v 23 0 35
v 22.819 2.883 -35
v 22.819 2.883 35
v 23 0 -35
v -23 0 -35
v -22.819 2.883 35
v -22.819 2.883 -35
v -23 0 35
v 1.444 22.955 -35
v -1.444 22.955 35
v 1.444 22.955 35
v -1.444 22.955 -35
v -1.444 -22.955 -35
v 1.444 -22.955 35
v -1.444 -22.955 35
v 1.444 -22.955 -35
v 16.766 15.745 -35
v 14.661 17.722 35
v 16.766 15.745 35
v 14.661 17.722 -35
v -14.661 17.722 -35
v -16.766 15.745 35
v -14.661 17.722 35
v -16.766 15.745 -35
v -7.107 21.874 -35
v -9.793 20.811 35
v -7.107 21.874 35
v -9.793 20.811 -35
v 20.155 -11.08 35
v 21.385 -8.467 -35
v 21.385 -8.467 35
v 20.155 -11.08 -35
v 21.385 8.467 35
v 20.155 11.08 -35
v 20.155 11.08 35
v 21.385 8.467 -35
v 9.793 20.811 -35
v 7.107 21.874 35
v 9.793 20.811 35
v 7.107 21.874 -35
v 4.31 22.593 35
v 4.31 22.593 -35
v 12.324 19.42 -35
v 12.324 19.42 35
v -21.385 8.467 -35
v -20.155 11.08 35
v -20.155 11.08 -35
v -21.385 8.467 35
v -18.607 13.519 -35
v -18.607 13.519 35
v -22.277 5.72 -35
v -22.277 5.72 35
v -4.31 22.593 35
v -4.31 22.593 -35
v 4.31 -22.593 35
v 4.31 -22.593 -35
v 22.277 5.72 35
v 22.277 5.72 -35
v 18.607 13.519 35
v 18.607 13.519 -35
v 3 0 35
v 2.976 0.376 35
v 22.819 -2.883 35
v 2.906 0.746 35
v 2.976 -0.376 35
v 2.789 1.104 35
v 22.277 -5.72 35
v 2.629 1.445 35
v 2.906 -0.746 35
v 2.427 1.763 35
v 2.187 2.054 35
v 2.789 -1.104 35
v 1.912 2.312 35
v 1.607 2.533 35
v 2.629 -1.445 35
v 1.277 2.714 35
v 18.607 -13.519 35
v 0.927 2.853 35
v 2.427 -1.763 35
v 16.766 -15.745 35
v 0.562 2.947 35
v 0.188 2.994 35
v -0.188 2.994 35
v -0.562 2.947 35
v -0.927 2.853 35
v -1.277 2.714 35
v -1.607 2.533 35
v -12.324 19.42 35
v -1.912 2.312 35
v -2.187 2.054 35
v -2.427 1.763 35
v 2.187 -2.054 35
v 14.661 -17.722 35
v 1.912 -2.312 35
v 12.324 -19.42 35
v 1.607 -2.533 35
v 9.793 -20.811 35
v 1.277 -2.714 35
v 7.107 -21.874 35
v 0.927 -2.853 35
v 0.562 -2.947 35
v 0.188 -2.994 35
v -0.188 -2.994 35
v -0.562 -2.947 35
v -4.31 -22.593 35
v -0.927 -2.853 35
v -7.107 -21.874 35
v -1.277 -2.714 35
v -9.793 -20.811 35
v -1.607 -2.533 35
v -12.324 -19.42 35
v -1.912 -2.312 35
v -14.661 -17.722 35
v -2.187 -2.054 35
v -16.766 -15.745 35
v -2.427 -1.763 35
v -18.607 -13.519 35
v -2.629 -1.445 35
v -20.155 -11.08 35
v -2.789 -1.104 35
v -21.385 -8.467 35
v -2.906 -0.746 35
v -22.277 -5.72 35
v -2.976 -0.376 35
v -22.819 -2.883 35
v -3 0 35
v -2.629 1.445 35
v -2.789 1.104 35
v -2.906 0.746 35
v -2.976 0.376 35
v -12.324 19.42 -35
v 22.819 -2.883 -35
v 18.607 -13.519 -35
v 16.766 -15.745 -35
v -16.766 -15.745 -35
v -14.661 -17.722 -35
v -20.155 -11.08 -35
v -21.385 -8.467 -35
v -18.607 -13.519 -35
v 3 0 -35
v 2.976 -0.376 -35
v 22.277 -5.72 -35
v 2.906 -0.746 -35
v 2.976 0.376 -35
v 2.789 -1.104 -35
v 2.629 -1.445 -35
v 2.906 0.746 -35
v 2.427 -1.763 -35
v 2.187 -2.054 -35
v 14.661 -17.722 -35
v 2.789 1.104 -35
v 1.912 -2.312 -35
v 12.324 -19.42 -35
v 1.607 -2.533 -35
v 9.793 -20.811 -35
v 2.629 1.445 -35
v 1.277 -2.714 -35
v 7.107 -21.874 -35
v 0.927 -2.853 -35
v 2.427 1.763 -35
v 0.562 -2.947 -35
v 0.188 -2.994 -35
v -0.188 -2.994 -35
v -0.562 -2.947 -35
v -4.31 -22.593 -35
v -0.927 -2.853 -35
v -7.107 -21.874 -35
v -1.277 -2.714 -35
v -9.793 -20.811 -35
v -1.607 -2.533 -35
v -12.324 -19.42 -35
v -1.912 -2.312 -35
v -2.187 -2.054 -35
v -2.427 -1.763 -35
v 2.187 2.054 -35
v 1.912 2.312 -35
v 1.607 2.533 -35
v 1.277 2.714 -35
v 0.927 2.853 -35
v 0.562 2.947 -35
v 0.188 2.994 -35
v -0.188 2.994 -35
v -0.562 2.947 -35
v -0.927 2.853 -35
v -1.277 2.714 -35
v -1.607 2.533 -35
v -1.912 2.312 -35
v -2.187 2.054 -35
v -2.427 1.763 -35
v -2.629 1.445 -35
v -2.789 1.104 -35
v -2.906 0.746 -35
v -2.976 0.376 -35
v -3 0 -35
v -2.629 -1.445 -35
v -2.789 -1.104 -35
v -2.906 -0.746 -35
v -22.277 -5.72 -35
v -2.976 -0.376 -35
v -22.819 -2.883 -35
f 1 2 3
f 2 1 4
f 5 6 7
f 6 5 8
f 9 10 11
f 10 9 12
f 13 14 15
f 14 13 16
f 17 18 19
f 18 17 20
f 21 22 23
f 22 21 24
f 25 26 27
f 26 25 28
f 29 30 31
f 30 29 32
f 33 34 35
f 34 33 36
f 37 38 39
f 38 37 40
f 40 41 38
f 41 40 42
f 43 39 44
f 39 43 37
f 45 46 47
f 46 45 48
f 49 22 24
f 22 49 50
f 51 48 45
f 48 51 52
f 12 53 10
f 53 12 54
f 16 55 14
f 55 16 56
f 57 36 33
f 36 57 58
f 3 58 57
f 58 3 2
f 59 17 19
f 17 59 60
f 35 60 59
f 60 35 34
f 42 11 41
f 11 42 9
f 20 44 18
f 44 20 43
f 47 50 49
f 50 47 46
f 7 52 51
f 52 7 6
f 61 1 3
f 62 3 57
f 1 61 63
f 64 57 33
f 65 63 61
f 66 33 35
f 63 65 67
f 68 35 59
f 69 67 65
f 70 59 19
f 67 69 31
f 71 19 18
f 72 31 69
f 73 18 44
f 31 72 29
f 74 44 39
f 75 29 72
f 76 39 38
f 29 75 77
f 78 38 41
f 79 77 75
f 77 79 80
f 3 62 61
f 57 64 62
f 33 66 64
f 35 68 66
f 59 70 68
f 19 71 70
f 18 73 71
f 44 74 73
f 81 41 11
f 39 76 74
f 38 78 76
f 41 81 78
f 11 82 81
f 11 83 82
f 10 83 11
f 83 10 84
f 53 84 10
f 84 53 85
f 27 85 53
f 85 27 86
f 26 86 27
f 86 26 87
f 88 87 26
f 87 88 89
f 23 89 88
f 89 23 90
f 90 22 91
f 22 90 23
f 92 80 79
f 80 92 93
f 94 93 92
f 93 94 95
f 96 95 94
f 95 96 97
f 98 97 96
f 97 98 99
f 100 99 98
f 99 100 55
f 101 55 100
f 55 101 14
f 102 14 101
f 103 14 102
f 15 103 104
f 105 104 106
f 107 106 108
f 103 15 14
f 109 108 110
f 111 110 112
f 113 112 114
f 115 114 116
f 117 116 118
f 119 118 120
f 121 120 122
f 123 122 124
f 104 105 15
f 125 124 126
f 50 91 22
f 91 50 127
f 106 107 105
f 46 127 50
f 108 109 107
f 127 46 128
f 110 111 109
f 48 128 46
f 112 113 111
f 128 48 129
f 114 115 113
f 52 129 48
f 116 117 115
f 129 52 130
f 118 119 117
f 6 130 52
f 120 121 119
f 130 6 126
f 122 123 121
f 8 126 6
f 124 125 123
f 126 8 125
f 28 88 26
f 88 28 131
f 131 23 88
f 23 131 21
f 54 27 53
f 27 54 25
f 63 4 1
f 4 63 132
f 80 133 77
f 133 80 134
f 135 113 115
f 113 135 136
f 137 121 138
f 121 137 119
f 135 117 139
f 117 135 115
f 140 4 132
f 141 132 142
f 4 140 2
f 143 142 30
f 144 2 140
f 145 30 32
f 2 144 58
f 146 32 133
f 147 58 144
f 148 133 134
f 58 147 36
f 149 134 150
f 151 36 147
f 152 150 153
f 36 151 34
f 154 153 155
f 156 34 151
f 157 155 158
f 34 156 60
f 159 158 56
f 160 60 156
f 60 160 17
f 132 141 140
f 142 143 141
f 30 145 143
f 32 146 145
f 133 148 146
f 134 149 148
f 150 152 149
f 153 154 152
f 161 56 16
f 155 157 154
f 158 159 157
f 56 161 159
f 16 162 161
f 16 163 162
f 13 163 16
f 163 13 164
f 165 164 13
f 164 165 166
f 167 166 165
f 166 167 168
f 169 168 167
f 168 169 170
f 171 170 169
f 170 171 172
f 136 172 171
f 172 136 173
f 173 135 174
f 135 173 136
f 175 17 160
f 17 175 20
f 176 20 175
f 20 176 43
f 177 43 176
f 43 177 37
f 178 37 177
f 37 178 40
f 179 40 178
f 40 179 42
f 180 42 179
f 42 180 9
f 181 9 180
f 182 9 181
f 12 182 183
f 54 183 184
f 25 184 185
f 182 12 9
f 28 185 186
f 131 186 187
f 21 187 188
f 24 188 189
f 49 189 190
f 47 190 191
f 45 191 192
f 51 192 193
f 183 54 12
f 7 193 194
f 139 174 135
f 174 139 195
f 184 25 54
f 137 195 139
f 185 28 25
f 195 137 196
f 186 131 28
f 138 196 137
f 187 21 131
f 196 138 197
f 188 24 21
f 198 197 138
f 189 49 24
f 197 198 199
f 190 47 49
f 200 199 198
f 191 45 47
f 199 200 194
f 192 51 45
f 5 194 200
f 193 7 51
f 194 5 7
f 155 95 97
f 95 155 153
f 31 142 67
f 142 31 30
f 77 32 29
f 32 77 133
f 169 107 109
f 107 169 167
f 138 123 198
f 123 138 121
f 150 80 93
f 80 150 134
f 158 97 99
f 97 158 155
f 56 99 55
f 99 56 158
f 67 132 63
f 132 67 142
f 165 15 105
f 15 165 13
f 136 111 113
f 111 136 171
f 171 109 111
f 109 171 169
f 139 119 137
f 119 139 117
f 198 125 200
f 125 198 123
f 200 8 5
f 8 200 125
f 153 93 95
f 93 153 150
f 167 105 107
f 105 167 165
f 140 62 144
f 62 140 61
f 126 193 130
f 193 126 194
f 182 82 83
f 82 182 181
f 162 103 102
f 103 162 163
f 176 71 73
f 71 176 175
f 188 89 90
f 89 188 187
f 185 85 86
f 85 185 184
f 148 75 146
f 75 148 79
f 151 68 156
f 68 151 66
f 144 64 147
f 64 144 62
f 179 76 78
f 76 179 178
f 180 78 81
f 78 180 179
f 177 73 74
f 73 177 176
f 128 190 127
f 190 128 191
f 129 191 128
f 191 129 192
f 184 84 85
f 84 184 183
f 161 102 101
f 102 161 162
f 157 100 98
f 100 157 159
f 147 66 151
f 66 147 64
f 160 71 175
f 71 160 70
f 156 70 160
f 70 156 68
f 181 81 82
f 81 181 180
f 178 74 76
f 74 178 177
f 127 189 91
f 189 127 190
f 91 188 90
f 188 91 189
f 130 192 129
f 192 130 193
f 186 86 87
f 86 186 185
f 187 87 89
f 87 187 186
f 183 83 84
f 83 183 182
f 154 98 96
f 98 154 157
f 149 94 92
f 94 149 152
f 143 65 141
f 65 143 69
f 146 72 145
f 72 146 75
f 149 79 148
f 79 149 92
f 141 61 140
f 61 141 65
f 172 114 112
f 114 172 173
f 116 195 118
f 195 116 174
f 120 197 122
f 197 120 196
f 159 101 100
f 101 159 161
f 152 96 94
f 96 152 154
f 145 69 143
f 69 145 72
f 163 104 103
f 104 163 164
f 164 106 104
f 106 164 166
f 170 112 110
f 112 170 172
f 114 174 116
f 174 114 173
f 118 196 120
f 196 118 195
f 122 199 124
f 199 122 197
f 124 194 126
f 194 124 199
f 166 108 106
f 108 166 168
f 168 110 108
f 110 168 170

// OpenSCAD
$fn = 50;


difference() {
	union() {
		translate(v = [0, 0, -35.0000000000]) {
			cylinder(h = 70, r = 23.0000000000);
		}
	}
	union() {
		translate(v = [0, 0, -100.0000000000]) {
			cylinder(h = 200, r = 3.0000000000);
		}
	}
}
